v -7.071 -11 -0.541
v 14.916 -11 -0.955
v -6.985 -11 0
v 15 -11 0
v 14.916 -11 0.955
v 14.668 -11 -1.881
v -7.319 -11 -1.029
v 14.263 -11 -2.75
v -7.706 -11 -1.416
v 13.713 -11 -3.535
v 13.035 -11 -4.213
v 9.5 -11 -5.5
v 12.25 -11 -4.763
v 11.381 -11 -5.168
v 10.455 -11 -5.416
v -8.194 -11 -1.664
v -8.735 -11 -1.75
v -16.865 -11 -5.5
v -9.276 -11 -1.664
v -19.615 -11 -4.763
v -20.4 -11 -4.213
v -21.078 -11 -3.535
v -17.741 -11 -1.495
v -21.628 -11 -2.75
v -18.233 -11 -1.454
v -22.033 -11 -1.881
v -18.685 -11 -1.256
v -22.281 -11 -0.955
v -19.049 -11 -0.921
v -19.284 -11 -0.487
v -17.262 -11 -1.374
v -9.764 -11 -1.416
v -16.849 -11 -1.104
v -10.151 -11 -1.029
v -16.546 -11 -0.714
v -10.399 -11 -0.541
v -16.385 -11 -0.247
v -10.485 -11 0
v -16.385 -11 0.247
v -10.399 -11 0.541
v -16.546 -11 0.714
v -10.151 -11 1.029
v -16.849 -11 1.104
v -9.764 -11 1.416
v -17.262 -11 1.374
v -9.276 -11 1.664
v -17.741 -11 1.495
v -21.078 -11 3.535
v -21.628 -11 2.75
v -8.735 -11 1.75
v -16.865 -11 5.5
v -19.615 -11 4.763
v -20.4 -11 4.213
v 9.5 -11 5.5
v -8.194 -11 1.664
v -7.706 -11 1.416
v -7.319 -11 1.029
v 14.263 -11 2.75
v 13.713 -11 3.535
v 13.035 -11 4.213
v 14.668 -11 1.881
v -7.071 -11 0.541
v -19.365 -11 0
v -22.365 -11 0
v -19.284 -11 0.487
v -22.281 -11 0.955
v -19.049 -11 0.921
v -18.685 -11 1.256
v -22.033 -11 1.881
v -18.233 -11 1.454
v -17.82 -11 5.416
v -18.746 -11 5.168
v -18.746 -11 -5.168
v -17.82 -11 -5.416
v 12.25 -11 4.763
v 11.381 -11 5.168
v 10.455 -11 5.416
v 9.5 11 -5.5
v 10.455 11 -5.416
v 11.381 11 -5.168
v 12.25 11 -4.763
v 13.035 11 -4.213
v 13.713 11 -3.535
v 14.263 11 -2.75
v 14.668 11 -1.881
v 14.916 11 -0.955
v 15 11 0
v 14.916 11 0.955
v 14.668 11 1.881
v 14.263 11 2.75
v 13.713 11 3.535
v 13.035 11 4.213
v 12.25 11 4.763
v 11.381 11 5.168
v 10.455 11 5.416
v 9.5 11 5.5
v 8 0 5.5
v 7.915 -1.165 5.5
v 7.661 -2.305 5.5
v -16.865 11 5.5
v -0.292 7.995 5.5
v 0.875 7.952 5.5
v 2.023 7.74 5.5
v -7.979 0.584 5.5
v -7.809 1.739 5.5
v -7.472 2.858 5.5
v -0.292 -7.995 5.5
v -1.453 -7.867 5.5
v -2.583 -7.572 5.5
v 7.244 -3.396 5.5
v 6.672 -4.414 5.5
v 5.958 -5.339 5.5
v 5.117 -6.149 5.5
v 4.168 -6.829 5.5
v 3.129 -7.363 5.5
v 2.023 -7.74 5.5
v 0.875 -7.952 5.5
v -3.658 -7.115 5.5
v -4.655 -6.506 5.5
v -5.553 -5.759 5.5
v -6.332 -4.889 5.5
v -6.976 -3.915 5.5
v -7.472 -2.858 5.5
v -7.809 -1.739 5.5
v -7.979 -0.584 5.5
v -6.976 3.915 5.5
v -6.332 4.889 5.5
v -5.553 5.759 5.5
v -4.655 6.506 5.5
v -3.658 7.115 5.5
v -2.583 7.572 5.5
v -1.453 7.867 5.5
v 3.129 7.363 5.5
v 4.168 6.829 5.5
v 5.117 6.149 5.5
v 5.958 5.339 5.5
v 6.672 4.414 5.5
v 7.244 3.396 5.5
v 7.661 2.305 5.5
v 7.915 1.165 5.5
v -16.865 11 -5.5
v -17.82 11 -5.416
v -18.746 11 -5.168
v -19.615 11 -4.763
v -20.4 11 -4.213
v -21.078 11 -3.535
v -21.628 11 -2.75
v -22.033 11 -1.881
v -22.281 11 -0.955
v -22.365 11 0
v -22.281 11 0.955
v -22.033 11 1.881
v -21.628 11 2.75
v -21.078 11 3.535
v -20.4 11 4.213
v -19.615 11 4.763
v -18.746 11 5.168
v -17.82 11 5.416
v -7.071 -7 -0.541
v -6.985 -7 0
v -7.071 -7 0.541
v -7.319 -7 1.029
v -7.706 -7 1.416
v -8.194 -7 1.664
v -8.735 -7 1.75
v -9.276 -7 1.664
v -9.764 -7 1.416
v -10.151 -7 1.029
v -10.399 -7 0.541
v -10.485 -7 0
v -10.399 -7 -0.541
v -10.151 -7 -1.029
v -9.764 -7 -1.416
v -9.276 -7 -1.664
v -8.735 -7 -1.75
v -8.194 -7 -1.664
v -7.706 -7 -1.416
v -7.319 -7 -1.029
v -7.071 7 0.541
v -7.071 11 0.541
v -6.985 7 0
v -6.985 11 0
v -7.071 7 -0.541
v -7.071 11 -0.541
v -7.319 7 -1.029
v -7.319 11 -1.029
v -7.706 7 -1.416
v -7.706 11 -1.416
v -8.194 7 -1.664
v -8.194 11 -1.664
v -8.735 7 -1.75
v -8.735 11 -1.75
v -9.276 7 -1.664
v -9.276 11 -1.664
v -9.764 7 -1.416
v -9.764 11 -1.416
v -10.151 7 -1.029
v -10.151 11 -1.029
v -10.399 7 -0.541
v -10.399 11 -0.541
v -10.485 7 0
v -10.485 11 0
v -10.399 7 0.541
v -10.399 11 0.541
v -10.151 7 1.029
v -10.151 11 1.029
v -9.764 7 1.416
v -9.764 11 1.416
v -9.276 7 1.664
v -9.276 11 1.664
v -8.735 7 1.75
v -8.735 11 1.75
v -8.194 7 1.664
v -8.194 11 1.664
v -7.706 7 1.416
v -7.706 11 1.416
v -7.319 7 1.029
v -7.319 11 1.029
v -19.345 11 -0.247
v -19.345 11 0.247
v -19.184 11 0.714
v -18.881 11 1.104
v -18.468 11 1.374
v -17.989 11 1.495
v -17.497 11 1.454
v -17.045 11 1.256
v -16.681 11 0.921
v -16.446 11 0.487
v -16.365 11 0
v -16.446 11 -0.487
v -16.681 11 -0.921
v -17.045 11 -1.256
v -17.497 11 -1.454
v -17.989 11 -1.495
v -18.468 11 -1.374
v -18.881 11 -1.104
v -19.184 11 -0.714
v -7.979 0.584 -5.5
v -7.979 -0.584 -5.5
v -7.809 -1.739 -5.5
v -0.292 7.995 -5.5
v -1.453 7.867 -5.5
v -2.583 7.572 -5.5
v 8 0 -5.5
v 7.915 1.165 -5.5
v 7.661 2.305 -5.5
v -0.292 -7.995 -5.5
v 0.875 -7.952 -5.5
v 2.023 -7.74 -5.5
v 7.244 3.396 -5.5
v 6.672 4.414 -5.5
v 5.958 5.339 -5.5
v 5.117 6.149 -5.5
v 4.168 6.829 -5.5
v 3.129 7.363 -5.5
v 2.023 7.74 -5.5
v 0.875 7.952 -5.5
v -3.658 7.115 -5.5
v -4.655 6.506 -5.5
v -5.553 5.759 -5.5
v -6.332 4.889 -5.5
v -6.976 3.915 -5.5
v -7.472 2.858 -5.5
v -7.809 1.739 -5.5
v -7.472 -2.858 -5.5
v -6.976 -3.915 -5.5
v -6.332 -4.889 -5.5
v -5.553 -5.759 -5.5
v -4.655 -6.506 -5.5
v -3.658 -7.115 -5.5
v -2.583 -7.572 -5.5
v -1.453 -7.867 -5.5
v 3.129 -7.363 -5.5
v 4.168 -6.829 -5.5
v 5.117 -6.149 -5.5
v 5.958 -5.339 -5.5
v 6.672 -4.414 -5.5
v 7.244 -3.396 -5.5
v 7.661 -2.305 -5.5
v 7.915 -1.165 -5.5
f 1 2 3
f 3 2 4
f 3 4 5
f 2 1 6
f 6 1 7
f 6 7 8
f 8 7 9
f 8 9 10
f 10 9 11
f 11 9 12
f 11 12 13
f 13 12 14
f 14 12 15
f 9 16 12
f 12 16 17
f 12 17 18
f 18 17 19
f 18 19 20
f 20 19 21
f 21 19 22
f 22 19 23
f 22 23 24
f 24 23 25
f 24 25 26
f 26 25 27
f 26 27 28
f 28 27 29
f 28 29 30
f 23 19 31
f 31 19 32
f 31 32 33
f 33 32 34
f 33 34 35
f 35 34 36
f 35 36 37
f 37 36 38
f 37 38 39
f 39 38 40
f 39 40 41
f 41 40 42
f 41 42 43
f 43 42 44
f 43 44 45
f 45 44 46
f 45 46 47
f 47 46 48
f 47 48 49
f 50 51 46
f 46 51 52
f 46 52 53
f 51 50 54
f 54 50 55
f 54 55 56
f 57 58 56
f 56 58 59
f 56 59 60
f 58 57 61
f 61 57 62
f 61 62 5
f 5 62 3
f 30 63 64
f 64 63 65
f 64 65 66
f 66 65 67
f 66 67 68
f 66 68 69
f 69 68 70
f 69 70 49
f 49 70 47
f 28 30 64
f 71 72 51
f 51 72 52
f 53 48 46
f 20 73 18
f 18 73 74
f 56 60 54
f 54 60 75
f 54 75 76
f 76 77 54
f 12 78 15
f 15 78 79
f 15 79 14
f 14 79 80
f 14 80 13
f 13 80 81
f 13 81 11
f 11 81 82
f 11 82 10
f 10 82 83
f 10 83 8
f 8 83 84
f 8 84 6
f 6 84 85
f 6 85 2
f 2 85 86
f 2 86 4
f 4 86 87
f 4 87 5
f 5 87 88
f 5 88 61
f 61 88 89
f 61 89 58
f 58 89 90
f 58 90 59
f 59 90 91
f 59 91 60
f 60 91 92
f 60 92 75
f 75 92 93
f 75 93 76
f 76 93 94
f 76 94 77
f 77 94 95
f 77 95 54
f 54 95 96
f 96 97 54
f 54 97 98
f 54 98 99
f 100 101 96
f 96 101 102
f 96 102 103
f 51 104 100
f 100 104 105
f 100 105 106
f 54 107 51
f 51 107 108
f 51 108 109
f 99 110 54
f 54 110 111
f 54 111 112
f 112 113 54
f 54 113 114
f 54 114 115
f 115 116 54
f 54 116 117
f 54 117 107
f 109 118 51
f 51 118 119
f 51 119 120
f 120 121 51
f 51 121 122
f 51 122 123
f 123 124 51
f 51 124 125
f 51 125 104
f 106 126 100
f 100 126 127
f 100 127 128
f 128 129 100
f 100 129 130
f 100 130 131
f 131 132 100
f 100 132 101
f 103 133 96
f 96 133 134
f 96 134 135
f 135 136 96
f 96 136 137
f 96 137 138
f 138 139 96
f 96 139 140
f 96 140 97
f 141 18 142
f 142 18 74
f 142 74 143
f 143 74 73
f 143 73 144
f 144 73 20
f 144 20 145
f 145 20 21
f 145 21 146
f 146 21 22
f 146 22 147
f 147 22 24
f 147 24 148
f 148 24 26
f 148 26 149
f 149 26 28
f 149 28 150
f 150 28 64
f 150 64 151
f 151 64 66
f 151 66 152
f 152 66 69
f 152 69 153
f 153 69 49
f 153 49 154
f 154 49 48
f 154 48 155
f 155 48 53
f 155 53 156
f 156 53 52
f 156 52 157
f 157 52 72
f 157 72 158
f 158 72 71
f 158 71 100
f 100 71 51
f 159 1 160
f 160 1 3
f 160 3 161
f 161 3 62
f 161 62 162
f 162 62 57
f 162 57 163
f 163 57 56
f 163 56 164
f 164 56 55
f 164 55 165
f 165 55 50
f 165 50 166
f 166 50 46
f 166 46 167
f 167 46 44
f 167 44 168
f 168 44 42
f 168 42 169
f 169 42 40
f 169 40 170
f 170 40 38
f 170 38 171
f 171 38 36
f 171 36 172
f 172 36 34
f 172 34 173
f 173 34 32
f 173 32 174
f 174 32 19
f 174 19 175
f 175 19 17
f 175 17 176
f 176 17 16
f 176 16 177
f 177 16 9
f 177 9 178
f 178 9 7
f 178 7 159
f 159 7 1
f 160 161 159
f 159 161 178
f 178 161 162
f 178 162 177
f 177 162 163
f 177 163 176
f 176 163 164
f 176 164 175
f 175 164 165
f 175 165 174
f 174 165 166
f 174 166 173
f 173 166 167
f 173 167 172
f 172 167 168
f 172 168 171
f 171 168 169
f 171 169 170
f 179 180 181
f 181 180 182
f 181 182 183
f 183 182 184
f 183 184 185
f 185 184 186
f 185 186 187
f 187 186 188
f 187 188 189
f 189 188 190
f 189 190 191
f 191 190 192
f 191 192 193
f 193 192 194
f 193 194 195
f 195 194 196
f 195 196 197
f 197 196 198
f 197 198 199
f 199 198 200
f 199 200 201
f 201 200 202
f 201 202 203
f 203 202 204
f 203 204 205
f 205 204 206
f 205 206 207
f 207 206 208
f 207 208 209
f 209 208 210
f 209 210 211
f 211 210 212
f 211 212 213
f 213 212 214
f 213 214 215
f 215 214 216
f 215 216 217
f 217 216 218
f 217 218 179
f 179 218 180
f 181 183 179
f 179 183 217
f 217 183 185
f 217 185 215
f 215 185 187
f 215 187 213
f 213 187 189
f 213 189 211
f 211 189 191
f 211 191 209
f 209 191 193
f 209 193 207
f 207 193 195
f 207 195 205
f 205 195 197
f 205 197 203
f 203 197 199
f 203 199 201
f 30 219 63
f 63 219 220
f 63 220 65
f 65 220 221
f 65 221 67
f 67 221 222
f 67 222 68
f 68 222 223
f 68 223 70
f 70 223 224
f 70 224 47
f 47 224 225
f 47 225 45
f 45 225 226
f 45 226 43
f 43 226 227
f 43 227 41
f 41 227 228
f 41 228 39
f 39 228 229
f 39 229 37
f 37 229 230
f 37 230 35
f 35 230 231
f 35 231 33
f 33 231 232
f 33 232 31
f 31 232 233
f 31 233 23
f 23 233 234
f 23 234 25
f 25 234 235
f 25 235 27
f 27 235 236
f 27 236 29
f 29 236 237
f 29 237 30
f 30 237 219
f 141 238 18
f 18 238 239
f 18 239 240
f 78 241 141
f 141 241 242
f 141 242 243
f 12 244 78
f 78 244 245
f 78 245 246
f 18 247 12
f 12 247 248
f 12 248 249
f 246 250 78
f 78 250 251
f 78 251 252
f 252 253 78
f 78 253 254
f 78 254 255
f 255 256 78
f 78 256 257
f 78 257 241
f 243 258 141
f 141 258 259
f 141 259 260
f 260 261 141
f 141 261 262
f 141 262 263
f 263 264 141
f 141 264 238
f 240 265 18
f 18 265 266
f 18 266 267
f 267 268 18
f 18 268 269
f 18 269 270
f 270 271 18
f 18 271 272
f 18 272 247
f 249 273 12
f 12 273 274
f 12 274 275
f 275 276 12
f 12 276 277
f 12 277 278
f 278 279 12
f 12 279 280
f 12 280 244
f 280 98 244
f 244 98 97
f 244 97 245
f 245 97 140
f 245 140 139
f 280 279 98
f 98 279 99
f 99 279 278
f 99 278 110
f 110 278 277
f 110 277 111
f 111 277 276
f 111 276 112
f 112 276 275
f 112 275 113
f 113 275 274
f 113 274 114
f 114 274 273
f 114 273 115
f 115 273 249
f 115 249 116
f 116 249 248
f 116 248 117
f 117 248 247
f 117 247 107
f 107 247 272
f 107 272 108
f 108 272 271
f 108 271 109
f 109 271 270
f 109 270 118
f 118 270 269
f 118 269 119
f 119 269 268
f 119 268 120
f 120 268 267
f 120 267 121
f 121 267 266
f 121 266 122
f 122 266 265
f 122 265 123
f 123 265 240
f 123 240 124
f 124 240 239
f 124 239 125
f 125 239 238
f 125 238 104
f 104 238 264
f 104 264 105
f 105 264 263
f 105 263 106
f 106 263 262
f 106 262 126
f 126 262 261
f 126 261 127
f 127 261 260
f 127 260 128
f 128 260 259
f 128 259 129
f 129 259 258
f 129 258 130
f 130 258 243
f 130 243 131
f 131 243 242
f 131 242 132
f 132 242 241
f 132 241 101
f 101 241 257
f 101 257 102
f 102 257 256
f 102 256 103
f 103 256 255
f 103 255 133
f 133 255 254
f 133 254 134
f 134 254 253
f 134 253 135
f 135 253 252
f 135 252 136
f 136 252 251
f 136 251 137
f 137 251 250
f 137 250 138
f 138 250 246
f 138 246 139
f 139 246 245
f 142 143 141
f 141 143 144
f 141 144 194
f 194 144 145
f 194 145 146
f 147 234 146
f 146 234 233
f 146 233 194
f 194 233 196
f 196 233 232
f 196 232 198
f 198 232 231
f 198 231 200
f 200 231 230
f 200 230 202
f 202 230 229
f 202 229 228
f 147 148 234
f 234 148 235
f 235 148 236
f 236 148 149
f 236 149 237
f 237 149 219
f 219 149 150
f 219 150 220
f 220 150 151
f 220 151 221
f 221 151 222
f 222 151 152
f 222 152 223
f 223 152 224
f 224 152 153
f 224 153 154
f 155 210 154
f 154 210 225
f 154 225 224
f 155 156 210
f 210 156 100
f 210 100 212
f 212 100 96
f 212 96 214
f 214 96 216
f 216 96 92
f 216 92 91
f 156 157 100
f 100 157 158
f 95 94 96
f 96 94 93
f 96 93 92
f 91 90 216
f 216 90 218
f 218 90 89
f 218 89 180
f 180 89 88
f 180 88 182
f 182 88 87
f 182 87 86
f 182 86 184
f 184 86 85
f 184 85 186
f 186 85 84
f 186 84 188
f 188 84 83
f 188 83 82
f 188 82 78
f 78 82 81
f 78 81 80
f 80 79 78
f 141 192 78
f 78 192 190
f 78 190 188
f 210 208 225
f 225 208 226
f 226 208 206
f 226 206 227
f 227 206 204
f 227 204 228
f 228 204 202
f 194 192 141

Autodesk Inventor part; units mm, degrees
ref_plane "YZ Plane" through (0, 0, 0) normal (1, 0, 0) x (0, 1, 0)
ref_plane "XZ Plane" through (0, 0, 0) normal (0, 1, 0) x (-1, 0, 0)
ref_plane "XY Plane" through (0, 0, 0) normal (0, 0, 1) x (1, 0, 0)
sketch "Sketch1" plane through (0, 0, 0) normal (0, 0, 1) x (1, 0, 0)
  circle A0 centre (0, 0) radius 8
  line L0 (0, 0) -> (-8.735, 0) construction
  line L1 (0, 0) -> (-17.865, 0) construction
  line L2 (-8.735, 0) -> (-8.735, 11) construction
  line L3 (-8.735, 0) -> (-8.735, -11) construction
  line L4 (-17.865, 0) -> (-17.865, -11) construction
  line L5 (-17.865, 0) -> (-17.865, 11) construction
  line L6 (8, 0) -> (15, 0) construction
  line L7 (-17.865, 0) -> (-22.365, 0) construction
  line L8 (-22.365, -11) -> (15, -11)
  line L9 (15, -11) -> (15, 11)
  line L10 (15, 11) -> (-22.365, 11)
  line L11 (-22.365, 11) -> (-22.365, -11)
  dimension "d0" = 16
  dimension "d1" = 8.735
  dimension "d2" = 17.865
  dimension "d3" = 11
  dimension "d4" = 11
  dimension "d5" = 11
  dimension "d6" = 11
  dimension "d7" = 7
  dimension "d8" = 4.5
  dimension "d23" = 37.365
extrude "Extrusion1" add sketch "Sketch1" along normal mid plane 11
sketch "Sketch2" plane through (-22.365, 11, 5.5) normal (0, 1, 0) x (1, 0, 0)
  line L0 (0, 11) -> (0, 0) projected
  line L1 (0, 5.5) -> (4.5, 5.5)
  line L2 (4.5, 5.5) -> (13.63, 5.5)
  circle A0 centre (4.5, 5.5) radius 1.5
  circle A1 centre (13.63, 5.5) radius 1.75
  point P0 (22.365, 5.5)
  dimension "d11" = 4.5
  dimension "d13" = 9.13
  dimension "d14" = 3
  dimension "d15" = 3.5
extrude "Extrusion2" cut sketch "Sketch2" against normal up to next contours A0 L2 L1 | L1 L2 A0
extrude "Extrusion3" cut sketch "Sketch2" against normal blind 4 contours A1
sketch "Sketch3" plane through (-22.365, -11, 5.5) normal (0, -1, 0) x (1, 0, 0)
  circle A0 centre (13.63, -5.5) radius 1.75 projected
  circle A1 centre (13.63, -5.5) radius 1.75
  point P0 (22.365, -5.5)
extrude "Extrusion4" cut sketch "Sketch3" against normal blind 4
fillet "Fillet1" radius 5.5 4 edges at (-22.365, 0, 5.5) (15, 0, 5.5) (15, 0, -5.5) (-22.365, 0, -5.5)
equation "\"d23\" = d2 + d7 + 0.5 * d0 + d8"
properties part number "ArmMidClip - 16mmBore"
